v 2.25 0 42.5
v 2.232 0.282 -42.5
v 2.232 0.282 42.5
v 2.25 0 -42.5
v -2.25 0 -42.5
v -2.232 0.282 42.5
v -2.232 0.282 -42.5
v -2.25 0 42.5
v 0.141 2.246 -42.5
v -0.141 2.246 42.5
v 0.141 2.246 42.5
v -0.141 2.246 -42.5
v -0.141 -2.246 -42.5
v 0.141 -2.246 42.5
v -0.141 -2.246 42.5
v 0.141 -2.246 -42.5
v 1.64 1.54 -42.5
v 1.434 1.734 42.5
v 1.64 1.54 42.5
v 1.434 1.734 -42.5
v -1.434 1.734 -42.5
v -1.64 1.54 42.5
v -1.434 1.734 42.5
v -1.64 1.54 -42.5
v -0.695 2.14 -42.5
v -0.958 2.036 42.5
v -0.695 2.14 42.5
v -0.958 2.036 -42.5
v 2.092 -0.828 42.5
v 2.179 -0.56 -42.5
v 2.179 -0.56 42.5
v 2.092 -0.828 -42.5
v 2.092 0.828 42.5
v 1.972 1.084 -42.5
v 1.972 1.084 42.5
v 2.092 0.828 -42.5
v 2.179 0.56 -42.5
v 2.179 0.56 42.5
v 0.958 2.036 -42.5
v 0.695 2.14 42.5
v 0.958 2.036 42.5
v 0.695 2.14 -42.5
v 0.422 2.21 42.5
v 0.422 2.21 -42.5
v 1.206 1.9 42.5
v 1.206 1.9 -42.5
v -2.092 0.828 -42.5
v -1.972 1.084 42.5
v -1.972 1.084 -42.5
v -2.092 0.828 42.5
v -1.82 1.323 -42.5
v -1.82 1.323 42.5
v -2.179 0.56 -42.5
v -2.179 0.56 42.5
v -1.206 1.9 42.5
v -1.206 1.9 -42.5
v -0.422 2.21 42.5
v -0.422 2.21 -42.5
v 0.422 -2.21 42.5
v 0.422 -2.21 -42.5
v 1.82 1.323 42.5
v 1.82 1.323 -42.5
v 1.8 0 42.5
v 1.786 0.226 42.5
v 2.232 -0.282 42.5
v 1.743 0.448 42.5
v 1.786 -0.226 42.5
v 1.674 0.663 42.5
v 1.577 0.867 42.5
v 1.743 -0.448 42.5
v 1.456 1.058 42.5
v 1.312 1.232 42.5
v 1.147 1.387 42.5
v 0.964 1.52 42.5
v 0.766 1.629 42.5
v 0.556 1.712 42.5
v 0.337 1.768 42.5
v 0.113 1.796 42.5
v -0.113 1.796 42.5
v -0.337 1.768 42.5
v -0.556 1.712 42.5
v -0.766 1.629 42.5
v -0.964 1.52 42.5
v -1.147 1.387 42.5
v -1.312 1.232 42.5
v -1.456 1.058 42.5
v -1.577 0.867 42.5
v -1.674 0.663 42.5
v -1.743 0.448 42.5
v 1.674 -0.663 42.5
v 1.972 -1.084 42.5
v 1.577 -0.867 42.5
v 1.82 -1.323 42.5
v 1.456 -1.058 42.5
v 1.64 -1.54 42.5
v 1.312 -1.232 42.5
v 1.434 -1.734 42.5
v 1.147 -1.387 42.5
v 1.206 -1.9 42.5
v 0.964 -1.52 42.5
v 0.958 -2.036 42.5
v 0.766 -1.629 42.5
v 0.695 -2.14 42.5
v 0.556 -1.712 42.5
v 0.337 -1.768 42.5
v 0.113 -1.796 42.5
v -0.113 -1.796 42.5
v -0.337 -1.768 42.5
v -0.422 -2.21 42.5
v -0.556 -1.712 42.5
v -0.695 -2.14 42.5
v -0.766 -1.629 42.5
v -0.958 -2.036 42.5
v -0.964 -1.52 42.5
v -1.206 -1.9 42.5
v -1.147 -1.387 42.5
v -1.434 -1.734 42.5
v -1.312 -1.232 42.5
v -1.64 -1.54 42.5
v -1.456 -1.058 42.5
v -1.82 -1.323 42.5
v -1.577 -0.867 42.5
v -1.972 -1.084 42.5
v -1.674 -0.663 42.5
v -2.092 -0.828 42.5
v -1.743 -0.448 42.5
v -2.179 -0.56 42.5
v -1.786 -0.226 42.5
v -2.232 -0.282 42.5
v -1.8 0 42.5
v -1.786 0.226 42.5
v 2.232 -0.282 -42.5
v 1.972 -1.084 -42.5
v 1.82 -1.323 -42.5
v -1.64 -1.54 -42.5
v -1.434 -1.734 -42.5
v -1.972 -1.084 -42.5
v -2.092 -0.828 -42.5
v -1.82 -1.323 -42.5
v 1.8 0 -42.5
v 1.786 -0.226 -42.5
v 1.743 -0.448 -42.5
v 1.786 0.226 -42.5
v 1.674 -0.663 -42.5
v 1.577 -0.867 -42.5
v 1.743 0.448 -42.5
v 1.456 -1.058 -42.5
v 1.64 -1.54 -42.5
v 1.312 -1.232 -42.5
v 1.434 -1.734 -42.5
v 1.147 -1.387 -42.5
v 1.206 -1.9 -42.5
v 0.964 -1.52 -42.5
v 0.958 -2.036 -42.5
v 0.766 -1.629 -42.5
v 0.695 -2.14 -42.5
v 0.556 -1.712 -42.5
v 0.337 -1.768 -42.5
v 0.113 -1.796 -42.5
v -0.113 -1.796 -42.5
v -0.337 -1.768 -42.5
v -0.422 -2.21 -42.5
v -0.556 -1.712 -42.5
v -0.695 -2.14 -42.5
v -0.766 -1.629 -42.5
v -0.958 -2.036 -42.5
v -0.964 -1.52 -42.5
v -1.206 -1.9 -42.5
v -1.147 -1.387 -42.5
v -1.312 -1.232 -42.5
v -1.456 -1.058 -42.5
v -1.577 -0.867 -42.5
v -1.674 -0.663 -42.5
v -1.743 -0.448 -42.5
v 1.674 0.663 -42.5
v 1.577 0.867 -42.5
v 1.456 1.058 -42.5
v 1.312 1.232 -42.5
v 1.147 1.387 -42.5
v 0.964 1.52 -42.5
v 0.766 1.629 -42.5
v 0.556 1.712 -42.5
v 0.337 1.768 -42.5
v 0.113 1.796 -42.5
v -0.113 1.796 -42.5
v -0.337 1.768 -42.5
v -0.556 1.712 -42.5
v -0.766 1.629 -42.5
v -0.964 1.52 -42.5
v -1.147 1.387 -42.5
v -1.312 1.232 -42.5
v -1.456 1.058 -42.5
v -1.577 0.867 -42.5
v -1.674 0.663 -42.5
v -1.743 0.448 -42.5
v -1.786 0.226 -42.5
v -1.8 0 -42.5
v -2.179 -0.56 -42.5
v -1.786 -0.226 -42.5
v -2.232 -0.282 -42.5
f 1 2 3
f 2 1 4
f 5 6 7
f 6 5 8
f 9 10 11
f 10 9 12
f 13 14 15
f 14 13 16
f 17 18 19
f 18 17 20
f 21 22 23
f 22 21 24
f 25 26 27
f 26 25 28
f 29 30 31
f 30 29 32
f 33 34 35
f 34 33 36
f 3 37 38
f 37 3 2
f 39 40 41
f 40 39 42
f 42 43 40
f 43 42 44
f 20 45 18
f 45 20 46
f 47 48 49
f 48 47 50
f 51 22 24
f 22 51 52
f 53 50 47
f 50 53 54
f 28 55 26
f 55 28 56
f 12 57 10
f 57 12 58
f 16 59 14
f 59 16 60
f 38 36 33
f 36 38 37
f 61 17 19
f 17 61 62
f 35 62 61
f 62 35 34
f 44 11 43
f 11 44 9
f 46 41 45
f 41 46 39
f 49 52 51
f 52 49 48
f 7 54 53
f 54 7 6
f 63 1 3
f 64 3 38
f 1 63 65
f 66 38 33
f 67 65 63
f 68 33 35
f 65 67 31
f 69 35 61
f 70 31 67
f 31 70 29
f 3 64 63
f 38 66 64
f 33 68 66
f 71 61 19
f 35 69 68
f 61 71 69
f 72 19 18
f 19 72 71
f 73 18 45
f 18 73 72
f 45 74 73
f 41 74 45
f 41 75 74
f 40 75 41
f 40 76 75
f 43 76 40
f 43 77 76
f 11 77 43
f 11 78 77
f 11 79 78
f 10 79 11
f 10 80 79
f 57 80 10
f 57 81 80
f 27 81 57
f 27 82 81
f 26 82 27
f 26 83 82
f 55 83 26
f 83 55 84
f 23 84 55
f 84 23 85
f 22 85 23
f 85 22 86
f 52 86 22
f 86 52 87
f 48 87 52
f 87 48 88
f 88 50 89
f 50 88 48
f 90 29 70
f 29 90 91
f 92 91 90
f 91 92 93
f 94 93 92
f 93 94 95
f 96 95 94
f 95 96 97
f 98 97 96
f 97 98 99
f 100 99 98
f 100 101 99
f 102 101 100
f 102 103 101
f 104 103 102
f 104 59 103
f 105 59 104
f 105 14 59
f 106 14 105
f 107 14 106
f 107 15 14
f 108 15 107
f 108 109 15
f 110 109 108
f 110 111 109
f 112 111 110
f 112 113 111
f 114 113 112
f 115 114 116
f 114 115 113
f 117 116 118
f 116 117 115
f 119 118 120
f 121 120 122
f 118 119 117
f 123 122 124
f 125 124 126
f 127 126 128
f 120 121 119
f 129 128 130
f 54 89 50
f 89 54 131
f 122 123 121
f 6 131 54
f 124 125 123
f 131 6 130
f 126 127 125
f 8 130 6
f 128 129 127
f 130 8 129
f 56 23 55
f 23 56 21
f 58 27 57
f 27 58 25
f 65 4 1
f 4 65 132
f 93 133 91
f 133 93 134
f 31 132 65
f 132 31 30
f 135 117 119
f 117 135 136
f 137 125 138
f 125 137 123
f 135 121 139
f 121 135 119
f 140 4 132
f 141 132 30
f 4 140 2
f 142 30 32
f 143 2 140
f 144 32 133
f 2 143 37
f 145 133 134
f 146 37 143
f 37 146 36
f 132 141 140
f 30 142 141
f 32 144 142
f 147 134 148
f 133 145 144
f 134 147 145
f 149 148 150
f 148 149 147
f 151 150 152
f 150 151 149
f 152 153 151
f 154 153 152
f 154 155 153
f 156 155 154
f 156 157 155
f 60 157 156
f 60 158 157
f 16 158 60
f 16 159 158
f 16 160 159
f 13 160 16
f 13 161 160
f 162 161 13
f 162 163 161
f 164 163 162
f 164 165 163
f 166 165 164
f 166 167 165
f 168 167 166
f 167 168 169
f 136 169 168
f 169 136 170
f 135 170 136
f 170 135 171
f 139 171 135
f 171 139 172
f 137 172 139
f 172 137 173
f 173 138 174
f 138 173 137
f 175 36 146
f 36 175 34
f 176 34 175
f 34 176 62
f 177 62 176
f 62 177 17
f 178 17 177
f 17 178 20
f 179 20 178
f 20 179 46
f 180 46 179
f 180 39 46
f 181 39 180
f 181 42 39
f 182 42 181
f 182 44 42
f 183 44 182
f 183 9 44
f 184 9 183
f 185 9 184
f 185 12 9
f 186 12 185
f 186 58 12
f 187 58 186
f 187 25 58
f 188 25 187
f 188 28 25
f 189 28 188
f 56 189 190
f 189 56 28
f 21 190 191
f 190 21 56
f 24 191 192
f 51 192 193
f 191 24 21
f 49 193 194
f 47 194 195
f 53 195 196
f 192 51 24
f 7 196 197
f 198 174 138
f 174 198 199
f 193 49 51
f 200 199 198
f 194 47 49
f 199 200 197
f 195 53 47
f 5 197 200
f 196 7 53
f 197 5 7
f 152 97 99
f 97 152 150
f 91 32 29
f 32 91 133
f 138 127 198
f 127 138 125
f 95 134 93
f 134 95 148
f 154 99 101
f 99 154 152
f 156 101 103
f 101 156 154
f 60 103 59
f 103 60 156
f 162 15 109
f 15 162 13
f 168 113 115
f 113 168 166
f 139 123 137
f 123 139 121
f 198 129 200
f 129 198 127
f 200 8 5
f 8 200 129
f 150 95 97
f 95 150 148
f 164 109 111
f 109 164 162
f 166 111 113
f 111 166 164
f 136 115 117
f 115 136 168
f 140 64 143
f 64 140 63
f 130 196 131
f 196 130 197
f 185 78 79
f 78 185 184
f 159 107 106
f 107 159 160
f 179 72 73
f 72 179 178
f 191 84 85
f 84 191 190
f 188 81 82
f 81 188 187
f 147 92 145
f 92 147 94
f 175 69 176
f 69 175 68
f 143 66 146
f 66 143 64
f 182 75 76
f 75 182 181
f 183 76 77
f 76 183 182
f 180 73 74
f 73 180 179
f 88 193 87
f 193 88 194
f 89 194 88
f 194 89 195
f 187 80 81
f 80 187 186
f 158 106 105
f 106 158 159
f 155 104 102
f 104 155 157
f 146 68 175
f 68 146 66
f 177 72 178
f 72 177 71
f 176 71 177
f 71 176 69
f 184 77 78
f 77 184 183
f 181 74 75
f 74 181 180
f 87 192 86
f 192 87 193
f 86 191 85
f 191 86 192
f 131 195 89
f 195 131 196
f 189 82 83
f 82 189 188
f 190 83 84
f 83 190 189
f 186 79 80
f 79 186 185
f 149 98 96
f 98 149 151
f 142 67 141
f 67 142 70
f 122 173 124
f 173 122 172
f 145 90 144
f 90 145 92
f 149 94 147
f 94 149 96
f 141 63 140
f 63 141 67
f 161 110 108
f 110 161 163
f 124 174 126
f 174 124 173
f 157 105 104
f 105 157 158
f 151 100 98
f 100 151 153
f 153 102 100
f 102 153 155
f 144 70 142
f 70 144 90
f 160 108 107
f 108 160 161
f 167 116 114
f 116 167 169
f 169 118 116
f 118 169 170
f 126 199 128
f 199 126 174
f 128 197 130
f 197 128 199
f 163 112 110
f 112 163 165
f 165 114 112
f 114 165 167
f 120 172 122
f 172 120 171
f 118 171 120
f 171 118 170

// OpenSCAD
$fn = 50;


difference() {
	union() {
		translate(v = [0, 0, -42.5000000000]) {
			cylinder(h = 85, r = 2.2500000000);
		}
	}
	union() {
		translate(v = [0, 0, -100.0000000000]) {
			cylinder(h = 200, r = 1.8000000000);
		}
	}
}
